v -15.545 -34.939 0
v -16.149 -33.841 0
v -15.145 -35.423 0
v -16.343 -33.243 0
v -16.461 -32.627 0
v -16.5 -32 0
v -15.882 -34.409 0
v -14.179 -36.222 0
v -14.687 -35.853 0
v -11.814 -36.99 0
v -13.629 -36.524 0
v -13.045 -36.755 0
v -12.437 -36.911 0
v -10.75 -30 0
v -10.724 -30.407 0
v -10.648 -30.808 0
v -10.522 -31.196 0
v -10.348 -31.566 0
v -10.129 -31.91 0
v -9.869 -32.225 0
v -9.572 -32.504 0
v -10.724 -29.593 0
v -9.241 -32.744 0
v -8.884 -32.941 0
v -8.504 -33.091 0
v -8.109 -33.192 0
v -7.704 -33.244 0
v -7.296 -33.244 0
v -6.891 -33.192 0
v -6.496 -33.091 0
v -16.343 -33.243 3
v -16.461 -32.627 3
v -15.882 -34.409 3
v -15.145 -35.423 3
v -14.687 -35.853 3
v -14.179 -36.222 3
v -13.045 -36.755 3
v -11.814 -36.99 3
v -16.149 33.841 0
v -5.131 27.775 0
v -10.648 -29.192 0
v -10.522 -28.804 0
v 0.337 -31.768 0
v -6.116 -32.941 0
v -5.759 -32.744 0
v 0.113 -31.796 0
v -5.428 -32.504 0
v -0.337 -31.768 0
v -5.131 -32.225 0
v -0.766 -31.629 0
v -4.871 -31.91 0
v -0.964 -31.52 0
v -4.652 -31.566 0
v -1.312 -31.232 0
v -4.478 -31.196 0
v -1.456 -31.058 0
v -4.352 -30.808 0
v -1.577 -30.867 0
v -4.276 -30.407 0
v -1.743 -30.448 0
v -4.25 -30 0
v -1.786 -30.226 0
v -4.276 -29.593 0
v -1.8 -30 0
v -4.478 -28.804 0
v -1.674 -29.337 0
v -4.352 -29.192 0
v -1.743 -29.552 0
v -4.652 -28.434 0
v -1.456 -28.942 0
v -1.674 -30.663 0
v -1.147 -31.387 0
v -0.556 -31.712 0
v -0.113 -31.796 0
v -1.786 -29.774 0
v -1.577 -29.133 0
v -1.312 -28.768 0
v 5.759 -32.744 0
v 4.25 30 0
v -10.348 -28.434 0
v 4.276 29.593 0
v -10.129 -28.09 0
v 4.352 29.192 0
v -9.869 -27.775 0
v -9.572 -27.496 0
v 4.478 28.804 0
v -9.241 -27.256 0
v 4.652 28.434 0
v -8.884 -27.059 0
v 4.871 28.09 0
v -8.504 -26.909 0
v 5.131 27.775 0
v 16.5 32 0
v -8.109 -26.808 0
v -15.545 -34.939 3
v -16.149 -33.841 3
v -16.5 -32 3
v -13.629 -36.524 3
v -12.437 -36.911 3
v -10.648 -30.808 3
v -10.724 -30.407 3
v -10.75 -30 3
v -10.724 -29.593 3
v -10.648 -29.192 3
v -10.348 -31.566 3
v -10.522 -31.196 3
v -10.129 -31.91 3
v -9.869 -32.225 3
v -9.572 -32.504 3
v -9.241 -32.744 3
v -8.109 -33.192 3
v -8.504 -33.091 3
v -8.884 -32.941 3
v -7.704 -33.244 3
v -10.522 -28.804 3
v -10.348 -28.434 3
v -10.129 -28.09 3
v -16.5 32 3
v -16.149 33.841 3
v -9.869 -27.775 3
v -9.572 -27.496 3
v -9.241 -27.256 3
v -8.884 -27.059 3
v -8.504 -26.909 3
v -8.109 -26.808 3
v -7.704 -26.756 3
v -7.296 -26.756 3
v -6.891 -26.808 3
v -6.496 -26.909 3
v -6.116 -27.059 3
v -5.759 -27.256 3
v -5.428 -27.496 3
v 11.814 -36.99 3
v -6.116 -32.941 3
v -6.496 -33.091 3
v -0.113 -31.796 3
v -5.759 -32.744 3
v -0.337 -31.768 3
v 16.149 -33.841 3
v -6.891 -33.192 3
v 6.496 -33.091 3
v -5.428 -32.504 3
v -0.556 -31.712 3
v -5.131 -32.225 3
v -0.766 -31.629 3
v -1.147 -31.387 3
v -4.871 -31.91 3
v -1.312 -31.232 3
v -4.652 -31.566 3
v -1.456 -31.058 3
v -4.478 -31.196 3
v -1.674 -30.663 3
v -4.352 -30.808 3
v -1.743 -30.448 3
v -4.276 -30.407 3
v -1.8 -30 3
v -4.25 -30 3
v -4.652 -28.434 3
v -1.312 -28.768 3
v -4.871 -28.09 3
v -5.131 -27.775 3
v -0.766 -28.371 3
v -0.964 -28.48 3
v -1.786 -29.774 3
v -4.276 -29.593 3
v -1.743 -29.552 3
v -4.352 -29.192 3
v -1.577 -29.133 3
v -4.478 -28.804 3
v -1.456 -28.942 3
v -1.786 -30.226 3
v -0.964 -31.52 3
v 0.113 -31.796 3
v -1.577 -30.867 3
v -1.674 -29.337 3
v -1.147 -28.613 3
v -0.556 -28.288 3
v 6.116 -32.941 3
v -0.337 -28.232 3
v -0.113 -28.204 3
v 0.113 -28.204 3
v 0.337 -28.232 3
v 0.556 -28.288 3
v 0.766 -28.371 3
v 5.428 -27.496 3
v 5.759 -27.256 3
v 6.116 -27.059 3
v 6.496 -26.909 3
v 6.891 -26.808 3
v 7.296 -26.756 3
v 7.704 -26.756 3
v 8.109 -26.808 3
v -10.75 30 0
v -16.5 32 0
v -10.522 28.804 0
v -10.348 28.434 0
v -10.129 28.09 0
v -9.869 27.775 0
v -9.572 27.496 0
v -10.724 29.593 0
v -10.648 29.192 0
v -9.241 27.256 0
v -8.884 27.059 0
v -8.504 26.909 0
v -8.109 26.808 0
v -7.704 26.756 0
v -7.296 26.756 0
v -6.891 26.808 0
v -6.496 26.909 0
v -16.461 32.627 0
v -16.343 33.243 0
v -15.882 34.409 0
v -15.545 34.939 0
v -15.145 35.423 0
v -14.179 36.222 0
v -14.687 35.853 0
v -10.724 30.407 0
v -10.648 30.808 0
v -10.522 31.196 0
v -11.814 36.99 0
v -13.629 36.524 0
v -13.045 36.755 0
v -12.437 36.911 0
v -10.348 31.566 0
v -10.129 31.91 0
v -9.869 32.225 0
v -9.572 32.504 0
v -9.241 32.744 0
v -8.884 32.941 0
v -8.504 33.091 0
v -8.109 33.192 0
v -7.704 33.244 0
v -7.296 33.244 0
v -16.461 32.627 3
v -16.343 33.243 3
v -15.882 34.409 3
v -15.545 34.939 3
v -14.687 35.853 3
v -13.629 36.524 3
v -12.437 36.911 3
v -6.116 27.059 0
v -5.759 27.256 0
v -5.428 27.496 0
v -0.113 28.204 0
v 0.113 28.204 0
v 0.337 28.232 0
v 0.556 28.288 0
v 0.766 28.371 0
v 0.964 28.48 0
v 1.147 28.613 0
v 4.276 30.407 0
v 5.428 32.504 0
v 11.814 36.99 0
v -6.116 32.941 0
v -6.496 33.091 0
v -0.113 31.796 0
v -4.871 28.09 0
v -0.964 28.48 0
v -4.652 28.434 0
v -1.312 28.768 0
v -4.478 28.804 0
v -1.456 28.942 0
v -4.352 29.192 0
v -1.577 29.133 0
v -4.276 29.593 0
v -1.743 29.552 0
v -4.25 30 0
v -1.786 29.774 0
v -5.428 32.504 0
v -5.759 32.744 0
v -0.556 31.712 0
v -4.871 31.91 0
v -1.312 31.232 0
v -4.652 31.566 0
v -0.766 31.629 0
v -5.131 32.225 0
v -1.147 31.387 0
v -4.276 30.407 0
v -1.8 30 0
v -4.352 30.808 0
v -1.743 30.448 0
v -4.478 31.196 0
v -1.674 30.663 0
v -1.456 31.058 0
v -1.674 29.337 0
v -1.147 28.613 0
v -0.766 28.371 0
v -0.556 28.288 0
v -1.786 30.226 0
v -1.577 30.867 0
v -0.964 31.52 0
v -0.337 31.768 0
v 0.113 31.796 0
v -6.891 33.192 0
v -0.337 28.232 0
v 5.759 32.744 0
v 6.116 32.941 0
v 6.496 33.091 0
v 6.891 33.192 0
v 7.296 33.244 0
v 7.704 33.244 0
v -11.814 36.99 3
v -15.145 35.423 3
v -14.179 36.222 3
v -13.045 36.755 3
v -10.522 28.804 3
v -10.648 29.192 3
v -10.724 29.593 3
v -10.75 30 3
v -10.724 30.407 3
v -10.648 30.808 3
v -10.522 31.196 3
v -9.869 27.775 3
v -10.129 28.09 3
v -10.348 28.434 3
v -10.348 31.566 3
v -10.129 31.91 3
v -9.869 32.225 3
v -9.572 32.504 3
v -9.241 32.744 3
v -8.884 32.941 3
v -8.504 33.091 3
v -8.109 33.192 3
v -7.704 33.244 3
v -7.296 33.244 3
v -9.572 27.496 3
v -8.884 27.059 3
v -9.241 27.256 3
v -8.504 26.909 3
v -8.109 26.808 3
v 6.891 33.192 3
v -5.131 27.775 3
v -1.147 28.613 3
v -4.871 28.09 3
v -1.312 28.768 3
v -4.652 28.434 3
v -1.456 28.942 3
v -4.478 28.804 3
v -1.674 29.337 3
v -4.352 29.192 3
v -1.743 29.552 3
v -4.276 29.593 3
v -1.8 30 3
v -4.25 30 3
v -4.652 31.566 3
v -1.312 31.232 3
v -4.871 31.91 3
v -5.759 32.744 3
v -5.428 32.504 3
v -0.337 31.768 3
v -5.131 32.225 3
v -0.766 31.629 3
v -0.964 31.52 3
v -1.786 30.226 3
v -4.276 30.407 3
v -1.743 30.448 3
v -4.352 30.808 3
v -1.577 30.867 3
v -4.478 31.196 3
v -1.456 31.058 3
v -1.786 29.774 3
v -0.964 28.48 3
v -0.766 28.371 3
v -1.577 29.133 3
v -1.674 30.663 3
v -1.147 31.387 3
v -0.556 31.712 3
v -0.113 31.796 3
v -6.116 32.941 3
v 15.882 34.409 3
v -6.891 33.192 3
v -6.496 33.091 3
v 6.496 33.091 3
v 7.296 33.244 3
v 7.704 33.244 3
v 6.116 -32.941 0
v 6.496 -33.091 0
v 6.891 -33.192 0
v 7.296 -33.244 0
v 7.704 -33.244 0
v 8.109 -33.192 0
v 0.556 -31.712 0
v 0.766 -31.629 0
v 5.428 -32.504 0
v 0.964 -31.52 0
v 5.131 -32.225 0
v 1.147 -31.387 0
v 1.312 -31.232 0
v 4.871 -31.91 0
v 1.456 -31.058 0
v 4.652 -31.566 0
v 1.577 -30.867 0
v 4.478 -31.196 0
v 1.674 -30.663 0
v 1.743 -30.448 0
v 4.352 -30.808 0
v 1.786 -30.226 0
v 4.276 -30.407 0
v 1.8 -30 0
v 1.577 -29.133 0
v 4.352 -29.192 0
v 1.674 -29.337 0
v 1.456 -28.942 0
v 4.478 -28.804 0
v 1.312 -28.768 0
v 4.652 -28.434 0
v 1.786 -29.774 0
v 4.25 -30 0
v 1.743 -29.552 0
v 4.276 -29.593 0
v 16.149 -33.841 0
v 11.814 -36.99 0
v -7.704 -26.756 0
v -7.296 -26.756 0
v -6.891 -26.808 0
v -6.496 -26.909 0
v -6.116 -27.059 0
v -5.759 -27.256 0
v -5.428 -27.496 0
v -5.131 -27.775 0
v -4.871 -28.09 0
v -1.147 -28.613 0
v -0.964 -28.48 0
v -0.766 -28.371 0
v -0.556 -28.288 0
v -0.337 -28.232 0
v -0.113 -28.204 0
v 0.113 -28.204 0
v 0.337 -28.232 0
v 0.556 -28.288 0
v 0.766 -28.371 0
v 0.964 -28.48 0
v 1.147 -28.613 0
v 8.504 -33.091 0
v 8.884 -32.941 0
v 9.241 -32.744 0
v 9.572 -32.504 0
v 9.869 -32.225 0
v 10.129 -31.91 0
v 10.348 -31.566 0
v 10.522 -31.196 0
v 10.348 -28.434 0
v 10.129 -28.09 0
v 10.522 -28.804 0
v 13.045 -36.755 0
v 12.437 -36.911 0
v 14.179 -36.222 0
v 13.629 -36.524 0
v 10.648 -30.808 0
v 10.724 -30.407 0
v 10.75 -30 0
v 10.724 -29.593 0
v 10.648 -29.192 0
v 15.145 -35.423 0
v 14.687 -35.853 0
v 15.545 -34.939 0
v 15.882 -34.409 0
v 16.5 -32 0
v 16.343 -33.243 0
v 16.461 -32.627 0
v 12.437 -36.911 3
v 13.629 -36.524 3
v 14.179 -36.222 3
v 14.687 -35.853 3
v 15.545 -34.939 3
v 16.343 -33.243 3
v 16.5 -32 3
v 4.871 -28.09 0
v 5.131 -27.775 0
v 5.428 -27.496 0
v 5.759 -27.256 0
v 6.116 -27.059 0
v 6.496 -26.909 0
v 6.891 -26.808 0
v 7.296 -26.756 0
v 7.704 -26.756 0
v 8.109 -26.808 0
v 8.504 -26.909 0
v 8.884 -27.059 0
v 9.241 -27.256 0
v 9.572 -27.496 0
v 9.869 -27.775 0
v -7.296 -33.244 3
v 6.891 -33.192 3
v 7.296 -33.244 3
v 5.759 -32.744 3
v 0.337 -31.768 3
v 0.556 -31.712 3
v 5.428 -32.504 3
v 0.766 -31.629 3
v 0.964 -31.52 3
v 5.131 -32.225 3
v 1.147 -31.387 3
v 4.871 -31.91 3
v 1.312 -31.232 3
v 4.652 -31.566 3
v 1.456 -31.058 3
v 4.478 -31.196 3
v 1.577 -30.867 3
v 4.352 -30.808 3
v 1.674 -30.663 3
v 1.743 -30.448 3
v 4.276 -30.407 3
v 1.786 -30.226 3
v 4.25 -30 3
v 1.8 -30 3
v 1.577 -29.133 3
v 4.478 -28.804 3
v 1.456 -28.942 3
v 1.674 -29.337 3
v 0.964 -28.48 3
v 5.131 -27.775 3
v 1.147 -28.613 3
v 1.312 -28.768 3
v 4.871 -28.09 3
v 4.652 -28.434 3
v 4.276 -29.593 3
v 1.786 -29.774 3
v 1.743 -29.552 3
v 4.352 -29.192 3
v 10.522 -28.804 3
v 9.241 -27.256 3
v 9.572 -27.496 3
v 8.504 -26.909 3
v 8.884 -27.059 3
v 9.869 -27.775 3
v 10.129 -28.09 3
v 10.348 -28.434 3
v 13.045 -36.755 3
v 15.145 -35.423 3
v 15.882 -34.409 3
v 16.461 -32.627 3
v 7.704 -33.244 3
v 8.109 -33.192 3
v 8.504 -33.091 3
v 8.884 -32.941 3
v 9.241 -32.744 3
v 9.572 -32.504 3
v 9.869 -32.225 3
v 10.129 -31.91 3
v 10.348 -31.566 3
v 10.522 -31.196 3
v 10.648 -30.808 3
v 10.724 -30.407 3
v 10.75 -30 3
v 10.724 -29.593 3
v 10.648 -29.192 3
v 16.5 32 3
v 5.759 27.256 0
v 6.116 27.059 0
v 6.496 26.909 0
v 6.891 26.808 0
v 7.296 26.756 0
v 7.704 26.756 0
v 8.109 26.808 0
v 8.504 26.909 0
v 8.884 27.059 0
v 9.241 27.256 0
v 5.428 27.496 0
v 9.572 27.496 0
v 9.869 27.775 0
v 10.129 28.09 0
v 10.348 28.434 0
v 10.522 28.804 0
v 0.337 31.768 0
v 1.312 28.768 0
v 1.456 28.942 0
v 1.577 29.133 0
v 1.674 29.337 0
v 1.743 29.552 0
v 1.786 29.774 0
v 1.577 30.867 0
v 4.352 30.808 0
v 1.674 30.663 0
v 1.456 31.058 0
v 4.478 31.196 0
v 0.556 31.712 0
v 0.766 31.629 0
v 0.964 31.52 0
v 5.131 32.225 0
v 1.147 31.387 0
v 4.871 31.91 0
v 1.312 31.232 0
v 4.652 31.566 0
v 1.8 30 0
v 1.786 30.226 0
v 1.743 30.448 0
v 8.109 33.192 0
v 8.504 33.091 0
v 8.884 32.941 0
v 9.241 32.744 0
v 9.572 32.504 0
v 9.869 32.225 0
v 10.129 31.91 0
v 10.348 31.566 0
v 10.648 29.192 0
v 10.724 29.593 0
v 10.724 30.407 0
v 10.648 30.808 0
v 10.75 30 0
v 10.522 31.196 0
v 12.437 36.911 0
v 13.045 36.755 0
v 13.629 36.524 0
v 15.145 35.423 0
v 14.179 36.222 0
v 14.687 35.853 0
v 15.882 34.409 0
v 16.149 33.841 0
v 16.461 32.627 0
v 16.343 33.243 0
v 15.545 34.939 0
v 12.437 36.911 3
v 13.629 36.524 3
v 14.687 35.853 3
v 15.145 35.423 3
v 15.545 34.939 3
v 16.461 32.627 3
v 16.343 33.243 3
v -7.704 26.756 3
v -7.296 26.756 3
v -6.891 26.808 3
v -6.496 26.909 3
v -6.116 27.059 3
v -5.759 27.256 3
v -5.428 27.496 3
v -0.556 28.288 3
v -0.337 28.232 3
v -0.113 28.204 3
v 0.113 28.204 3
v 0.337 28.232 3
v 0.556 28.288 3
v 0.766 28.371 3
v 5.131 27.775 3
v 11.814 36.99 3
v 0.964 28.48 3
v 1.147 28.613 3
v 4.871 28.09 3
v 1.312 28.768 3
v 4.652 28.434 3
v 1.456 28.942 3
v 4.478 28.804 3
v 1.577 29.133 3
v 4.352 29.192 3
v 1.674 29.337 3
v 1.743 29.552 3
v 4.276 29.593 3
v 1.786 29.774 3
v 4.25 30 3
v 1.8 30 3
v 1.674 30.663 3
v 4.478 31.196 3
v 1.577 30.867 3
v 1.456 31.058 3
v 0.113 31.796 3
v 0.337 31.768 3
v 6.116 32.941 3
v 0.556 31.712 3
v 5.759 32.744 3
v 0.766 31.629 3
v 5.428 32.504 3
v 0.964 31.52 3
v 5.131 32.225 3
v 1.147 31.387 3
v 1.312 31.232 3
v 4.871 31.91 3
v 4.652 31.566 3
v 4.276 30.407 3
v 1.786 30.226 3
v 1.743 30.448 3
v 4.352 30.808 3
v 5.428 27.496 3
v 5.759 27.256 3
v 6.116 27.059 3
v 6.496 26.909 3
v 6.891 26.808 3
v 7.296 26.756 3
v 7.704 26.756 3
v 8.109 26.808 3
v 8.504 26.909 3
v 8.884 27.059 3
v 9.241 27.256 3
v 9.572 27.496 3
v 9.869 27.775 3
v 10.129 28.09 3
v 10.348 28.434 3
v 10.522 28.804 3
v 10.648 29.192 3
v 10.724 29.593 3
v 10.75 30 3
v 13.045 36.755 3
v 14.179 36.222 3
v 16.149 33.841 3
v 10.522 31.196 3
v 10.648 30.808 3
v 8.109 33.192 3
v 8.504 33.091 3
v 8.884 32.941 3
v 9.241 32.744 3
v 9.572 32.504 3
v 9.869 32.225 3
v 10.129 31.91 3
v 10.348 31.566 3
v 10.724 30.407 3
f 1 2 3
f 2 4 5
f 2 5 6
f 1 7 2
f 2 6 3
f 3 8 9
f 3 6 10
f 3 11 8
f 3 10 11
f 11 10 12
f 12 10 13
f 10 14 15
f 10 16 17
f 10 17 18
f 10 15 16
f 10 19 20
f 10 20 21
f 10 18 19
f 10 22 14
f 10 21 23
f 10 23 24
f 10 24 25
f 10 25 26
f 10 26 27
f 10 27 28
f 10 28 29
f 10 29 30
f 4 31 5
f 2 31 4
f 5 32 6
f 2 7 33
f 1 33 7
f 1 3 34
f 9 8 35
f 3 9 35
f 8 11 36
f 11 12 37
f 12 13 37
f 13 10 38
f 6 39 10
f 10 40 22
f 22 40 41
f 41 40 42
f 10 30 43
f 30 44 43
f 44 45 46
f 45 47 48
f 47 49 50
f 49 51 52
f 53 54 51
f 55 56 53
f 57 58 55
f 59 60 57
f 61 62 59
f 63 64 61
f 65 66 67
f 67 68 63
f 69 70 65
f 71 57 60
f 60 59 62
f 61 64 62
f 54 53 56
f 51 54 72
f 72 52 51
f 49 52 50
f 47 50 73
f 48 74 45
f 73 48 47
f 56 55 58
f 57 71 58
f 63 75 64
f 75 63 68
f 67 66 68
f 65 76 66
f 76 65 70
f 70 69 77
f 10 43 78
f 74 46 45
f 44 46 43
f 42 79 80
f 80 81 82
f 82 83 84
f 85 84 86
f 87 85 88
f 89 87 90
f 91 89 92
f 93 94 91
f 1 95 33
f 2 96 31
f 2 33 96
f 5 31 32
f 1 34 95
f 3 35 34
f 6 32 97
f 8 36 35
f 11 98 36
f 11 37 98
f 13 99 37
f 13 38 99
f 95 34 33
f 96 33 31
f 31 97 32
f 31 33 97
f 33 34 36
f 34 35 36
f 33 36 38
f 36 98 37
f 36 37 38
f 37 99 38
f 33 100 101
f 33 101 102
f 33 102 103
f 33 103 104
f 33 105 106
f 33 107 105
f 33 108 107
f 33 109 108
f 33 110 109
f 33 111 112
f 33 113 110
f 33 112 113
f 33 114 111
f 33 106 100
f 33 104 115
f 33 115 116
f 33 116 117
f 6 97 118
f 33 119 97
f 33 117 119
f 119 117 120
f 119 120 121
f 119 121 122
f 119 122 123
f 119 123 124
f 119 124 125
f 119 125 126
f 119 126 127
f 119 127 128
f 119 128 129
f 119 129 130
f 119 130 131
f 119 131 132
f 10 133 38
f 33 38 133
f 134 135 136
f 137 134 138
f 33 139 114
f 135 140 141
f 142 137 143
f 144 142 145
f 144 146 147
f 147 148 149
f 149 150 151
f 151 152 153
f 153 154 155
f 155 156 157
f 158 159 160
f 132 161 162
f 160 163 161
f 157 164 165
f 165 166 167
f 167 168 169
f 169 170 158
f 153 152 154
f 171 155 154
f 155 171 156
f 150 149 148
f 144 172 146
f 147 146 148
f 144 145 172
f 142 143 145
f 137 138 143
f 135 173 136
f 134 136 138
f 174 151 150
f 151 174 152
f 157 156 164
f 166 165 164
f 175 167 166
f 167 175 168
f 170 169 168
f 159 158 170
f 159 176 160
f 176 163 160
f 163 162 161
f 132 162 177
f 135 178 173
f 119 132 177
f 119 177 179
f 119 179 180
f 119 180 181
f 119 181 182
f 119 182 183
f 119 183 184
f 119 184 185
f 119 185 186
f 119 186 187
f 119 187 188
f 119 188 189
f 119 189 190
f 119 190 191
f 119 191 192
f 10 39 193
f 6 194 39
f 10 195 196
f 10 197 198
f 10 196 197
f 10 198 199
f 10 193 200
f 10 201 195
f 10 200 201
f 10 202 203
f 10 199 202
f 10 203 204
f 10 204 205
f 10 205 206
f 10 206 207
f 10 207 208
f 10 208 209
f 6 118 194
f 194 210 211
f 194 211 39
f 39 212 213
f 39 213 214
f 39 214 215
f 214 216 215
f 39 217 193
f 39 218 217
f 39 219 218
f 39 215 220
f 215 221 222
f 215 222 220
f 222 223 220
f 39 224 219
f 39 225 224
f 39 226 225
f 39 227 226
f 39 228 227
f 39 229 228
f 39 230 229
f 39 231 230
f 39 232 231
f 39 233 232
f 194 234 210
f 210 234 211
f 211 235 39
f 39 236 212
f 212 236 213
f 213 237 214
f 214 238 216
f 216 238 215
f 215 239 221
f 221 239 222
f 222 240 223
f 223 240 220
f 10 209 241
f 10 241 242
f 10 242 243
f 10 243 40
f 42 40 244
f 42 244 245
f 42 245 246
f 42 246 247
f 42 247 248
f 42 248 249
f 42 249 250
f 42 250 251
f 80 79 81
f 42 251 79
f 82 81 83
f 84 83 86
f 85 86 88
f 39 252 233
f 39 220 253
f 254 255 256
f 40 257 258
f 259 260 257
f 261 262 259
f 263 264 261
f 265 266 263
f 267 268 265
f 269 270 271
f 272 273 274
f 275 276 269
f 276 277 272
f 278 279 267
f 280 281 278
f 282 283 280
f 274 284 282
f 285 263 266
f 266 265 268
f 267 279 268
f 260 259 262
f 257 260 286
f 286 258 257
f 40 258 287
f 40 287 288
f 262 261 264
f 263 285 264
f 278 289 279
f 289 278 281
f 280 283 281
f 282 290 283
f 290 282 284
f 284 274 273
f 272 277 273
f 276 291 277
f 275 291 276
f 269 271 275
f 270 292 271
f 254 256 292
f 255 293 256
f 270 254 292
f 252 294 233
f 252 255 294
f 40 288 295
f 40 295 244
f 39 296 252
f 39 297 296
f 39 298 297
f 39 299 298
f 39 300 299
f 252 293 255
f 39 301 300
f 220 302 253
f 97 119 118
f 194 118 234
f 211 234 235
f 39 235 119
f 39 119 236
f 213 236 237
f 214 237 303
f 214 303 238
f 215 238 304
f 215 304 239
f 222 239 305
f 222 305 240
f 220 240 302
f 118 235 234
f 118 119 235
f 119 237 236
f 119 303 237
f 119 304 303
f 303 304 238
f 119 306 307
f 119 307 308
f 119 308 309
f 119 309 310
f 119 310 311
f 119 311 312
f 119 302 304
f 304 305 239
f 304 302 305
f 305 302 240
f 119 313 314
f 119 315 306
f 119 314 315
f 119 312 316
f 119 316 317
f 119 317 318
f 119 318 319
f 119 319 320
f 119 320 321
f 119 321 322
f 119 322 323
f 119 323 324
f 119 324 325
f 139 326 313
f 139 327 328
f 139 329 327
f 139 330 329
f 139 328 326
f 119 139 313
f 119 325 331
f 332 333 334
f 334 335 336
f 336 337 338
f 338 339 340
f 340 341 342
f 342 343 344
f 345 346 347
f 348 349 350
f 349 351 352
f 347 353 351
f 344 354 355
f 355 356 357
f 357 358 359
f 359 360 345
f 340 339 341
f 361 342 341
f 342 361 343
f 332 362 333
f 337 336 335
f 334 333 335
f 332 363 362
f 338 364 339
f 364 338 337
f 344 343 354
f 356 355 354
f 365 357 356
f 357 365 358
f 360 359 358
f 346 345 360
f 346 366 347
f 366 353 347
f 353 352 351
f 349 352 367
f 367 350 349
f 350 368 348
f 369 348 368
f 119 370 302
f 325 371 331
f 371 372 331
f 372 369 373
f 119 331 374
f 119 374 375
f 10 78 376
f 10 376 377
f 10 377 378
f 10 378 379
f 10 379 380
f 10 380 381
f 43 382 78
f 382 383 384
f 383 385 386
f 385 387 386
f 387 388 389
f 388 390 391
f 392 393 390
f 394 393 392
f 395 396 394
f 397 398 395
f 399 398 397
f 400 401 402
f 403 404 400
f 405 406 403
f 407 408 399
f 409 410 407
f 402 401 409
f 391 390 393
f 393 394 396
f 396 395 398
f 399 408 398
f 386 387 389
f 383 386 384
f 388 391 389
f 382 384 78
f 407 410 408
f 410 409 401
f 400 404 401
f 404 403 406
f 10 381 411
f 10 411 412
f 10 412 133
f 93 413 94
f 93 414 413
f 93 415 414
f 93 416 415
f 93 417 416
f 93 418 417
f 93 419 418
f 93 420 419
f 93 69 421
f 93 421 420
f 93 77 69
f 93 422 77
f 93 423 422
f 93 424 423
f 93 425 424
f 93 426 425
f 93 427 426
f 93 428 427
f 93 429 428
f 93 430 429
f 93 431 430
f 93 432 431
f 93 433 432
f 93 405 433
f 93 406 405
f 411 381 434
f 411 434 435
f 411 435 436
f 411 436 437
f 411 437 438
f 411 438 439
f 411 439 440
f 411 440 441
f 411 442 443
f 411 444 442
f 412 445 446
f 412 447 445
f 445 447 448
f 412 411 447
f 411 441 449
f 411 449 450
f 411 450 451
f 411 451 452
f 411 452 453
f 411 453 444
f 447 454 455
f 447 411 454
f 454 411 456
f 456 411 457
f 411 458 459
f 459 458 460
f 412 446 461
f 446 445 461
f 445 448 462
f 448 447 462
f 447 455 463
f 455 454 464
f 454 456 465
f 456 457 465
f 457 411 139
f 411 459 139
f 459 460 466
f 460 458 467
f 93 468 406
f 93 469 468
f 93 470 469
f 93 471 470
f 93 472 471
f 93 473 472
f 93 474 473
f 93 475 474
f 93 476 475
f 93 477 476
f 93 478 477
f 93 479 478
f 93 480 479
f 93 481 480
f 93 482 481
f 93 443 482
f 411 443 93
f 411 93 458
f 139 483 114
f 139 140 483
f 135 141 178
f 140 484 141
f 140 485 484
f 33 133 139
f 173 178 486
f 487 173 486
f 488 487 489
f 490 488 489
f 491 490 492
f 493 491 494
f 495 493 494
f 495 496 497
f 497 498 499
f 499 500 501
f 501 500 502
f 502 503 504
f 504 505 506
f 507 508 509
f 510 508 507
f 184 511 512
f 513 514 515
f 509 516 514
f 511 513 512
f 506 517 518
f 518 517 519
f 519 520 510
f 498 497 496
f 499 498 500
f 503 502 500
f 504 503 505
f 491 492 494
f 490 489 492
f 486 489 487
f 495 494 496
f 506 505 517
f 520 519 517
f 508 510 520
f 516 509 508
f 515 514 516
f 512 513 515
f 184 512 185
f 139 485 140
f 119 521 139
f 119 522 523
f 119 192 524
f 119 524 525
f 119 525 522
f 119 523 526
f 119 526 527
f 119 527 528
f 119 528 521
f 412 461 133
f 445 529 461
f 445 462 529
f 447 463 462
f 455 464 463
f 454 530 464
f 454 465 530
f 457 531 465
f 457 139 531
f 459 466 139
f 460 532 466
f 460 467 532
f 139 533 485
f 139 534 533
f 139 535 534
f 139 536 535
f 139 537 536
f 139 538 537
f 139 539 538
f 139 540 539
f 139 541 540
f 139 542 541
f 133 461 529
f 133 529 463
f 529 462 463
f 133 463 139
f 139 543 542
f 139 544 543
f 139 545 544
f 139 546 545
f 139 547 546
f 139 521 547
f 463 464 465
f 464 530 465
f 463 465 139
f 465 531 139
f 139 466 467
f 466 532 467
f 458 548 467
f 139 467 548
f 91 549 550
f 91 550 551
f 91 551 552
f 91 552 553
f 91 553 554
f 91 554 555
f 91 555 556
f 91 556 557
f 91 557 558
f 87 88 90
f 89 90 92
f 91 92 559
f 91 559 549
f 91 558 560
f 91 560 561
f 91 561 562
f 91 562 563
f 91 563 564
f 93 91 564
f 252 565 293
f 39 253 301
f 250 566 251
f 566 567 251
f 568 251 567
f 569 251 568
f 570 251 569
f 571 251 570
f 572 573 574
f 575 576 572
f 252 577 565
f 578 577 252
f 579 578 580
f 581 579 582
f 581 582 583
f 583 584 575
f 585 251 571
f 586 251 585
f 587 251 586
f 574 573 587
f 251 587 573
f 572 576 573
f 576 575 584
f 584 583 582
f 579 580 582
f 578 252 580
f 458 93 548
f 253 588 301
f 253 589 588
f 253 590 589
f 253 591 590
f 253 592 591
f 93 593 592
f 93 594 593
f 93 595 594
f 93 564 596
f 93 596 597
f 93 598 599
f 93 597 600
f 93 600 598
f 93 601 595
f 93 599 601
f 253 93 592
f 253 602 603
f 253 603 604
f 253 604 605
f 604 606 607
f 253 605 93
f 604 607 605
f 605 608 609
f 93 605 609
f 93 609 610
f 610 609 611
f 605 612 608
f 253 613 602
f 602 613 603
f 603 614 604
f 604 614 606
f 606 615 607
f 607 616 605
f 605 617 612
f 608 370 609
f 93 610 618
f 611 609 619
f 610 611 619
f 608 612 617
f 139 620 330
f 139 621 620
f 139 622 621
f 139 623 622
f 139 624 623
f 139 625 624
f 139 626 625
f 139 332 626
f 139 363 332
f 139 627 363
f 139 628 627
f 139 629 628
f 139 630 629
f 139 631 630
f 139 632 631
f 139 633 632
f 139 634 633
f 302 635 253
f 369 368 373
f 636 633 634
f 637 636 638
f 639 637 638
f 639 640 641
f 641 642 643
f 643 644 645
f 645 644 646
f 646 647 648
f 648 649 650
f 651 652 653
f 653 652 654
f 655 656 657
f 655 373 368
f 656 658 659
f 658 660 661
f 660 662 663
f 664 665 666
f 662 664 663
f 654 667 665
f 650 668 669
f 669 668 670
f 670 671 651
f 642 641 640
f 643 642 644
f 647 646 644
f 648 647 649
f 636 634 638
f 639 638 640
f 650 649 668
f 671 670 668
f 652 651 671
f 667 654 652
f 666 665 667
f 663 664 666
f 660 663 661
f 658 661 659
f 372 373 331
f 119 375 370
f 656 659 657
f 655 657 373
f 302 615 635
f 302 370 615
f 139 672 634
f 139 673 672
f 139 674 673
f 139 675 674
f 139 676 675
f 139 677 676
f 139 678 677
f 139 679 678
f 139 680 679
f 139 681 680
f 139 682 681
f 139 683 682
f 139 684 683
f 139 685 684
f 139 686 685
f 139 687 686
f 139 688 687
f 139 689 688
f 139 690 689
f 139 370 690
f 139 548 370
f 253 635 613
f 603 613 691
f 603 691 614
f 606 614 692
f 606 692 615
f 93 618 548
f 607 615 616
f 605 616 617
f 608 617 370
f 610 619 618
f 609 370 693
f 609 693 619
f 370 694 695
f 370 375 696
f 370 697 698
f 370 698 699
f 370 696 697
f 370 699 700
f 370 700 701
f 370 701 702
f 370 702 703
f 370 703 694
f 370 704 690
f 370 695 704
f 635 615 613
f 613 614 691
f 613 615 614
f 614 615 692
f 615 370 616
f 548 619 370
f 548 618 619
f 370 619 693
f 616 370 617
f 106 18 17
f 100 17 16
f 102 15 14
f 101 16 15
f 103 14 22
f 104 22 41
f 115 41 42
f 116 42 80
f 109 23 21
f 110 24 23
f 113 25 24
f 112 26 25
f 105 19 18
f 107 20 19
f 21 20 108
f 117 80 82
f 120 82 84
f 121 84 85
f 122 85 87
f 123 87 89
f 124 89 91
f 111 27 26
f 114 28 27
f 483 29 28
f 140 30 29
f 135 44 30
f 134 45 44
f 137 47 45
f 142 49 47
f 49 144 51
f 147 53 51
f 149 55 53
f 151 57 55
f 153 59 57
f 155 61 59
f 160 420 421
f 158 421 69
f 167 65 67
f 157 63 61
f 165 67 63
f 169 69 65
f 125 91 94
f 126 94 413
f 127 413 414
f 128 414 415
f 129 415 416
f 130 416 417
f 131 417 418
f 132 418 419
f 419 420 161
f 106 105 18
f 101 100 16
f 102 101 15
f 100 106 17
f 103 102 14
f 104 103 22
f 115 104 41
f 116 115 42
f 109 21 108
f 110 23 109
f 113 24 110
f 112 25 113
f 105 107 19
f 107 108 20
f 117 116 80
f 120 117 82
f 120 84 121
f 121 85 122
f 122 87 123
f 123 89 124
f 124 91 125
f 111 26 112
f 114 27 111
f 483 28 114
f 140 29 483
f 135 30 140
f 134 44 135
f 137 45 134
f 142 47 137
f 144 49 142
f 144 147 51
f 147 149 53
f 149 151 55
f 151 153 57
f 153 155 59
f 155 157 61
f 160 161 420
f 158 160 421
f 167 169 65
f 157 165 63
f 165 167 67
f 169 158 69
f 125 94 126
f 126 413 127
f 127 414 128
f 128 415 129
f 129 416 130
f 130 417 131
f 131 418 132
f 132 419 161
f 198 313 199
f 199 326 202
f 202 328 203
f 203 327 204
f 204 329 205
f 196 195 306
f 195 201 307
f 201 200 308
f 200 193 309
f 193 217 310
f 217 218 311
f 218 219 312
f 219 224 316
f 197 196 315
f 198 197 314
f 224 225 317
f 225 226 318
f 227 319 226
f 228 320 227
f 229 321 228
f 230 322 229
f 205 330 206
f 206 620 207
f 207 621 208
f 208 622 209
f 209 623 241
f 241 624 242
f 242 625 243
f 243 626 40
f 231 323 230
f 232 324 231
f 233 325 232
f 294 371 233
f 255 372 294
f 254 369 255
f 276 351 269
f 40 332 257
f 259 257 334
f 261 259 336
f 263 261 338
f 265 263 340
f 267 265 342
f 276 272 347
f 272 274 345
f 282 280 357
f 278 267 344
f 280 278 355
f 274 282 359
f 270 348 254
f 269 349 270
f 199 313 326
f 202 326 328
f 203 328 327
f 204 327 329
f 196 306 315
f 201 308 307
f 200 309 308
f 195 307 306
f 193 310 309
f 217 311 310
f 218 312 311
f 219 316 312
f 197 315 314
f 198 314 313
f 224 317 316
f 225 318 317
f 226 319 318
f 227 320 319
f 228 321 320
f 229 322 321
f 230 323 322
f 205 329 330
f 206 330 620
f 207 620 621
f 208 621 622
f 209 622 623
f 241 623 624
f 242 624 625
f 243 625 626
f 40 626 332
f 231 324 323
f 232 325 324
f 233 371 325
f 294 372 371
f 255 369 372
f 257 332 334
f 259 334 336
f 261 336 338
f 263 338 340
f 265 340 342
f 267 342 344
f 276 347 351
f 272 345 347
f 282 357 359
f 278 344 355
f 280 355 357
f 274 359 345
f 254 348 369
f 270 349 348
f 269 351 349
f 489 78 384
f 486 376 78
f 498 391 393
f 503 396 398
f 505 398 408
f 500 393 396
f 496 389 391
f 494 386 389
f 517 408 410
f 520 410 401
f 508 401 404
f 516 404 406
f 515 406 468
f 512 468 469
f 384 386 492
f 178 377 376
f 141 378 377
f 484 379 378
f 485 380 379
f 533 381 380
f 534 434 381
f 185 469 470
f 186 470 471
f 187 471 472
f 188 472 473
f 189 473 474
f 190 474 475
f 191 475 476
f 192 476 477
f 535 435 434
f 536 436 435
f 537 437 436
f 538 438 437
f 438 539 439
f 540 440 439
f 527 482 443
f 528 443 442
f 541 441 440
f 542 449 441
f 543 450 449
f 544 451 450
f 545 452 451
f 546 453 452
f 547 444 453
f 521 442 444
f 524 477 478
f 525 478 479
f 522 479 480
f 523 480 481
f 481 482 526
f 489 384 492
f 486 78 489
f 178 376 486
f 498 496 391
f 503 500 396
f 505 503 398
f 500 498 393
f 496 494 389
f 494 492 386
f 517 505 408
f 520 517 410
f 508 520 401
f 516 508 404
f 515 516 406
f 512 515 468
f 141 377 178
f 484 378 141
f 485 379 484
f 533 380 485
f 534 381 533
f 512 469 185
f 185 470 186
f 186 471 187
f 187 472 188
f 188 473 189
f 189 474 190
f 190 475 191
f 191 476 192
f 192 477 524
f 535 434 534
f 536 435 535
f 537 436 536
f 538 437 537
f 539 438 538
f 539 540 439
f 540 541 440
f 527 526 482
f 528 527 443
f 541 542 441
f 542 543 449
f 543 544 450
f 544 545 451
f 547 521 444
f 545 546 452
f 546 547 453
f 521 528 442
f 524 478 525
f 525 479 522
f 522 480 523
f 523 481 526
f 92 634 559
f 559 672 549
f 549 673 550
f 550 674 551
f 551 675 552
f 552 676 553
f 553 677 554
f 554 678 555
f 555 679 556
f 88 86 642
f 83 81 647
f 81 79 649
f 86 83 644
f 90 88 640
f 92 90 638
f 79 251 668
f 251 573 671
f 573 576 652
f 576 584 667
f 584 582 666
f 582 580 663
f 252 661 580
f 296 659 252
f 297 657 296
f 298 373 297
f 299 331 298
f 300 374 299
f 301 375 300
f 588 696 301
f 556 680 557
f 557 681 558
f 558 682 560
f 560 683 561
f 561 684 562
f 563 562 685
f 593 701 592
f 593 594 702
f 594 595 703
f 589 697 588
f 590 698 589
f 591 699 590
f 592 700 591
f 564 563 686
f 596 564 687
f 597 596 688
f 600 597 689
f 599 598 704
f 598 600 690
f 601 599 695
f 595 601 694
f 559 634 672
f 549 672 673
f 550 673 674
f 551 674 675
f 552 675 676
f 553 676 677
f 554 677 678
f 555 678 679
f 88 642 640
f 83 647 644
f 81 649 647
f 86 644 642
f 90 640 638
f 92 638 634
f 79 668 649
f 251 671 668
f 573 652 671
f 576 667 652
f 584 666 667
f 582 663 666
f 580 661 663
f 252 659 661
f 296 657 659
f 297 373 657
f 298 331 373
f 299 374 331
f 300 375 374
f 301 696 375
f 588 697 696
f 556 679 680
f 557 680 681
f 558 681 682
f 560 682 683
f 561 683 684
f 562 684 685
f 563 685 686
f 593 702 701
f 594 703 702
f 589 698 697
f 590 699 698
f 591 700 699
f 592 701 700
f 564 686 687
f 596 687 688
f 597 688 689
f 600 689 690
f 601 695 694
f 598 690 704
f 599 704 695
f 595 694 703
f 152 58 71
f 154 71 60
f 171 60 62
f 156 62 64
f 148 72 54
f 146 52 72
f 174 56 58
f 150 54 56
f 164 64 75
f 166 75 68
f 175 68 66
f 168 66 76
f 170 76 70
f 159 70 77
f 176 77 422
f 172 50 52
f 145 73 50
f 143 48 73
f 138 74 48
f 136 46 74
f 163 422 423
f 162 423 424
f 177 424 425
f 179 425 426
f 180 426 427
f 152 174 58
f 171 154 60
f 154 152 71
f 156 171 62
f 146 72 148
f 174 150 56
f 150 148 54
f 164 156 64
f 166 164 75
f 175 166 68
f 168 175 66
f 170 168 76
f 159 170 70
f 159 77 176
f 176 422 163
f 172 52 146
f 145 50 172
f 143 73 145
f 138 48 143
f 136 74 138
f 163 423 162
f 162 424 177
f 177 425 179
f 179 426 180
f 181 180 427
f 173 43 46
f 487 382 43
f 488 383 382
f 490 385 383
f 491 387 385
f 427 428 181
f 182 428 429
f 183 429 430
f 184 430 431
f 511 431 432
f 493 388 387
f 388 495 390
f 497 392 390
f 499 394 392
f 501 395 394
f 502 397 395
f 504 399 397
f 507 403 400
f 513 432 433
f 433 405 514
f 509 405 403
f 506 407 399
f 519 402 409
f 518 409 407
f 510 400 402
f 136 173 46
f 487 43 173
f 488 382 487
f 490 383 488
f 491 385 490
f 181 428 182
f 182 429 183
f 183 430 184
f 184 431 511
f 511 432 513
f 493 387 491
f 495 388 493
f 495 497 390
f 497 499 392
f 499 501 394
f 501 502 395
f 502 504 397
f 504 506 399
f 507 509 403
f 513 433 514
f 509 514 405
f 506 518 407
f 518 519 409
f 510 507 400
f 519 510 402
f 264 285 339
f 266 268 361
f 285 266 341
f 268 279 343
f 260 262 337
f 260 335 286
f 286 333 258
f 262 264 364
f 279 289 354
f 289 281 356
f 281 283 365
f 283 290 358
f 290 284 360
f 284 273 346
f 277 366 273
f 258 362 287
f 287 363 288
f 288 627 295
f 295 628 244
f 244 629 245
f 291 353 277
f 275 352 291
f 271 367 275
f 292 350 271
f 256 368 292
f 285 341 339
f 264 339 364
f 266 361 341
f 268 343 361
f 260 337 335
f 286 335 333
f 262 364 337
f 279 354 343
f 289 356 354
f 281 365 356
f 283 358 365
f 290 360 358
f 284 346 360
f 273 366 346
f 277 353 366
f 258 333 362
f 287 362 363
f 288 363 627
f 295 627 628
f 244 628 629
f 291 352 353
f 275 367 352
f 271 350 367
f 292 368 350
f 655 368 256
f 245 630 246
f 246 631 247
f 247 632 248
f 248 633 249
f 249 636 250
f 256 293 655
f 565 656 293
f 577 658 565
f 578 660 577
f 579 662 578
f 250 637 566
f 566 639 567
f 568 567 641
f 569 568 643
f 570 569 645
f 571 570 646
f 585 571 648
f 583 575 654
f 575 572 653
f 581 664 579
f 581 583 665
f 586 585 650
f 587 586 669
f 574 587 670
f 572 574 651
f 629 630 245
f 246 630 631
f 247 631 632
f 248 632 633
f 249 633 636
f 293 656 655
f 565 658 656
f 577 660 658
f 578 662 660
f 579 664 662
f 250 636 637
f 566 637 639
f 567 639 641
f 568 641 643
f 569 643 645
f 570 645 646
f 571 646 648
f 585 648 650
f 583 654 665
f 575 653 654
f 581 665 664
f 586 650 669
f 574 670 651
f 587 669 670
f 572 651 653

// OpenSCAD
$fn = 50;

difference() {
	union() {
		hull() {
			translate(v = [-11.5, 32.0, 0]) {
				cylinder(h = 3, r = 5);
			}
			translate(v = [11.5, 32.0, 0]) {
				cylinder(h = 3, r = 5);
			}
			translate(v = [-11.5, -32.0, 0]) {
				cylinder(h = 3, r = 5);
			}
			translate(v = [11.5, -32.0, 0]) {
				cylinder(h = 3, r = 5);
			}
		}
	}
	union() {
		translate(v = [-7.5, -30.0, -1]) {
			cylinder(h = 5, r = 3.25);
		}
		translate(v = [-7.5, 30.0, -1]) {
			cylinder(h = 5, r = 3.25);
		}
		translate(v = [7.5, -30.0, -1]) {
			cylinder(h = 5, r = 3.25);
		}
		translate(v = [7.5, 30.0, -1]) {
			cylinder(h = 5, r = 3.25);
		}
		translate(v = [0.0, -30.0, -1]) {
			cylinder(h = 5, r = 1.8);
		}
		translate(v = [0.0, 30.0, -1]) {
			cylinder(h = 5, r = 1.8);
		}
	}
}
